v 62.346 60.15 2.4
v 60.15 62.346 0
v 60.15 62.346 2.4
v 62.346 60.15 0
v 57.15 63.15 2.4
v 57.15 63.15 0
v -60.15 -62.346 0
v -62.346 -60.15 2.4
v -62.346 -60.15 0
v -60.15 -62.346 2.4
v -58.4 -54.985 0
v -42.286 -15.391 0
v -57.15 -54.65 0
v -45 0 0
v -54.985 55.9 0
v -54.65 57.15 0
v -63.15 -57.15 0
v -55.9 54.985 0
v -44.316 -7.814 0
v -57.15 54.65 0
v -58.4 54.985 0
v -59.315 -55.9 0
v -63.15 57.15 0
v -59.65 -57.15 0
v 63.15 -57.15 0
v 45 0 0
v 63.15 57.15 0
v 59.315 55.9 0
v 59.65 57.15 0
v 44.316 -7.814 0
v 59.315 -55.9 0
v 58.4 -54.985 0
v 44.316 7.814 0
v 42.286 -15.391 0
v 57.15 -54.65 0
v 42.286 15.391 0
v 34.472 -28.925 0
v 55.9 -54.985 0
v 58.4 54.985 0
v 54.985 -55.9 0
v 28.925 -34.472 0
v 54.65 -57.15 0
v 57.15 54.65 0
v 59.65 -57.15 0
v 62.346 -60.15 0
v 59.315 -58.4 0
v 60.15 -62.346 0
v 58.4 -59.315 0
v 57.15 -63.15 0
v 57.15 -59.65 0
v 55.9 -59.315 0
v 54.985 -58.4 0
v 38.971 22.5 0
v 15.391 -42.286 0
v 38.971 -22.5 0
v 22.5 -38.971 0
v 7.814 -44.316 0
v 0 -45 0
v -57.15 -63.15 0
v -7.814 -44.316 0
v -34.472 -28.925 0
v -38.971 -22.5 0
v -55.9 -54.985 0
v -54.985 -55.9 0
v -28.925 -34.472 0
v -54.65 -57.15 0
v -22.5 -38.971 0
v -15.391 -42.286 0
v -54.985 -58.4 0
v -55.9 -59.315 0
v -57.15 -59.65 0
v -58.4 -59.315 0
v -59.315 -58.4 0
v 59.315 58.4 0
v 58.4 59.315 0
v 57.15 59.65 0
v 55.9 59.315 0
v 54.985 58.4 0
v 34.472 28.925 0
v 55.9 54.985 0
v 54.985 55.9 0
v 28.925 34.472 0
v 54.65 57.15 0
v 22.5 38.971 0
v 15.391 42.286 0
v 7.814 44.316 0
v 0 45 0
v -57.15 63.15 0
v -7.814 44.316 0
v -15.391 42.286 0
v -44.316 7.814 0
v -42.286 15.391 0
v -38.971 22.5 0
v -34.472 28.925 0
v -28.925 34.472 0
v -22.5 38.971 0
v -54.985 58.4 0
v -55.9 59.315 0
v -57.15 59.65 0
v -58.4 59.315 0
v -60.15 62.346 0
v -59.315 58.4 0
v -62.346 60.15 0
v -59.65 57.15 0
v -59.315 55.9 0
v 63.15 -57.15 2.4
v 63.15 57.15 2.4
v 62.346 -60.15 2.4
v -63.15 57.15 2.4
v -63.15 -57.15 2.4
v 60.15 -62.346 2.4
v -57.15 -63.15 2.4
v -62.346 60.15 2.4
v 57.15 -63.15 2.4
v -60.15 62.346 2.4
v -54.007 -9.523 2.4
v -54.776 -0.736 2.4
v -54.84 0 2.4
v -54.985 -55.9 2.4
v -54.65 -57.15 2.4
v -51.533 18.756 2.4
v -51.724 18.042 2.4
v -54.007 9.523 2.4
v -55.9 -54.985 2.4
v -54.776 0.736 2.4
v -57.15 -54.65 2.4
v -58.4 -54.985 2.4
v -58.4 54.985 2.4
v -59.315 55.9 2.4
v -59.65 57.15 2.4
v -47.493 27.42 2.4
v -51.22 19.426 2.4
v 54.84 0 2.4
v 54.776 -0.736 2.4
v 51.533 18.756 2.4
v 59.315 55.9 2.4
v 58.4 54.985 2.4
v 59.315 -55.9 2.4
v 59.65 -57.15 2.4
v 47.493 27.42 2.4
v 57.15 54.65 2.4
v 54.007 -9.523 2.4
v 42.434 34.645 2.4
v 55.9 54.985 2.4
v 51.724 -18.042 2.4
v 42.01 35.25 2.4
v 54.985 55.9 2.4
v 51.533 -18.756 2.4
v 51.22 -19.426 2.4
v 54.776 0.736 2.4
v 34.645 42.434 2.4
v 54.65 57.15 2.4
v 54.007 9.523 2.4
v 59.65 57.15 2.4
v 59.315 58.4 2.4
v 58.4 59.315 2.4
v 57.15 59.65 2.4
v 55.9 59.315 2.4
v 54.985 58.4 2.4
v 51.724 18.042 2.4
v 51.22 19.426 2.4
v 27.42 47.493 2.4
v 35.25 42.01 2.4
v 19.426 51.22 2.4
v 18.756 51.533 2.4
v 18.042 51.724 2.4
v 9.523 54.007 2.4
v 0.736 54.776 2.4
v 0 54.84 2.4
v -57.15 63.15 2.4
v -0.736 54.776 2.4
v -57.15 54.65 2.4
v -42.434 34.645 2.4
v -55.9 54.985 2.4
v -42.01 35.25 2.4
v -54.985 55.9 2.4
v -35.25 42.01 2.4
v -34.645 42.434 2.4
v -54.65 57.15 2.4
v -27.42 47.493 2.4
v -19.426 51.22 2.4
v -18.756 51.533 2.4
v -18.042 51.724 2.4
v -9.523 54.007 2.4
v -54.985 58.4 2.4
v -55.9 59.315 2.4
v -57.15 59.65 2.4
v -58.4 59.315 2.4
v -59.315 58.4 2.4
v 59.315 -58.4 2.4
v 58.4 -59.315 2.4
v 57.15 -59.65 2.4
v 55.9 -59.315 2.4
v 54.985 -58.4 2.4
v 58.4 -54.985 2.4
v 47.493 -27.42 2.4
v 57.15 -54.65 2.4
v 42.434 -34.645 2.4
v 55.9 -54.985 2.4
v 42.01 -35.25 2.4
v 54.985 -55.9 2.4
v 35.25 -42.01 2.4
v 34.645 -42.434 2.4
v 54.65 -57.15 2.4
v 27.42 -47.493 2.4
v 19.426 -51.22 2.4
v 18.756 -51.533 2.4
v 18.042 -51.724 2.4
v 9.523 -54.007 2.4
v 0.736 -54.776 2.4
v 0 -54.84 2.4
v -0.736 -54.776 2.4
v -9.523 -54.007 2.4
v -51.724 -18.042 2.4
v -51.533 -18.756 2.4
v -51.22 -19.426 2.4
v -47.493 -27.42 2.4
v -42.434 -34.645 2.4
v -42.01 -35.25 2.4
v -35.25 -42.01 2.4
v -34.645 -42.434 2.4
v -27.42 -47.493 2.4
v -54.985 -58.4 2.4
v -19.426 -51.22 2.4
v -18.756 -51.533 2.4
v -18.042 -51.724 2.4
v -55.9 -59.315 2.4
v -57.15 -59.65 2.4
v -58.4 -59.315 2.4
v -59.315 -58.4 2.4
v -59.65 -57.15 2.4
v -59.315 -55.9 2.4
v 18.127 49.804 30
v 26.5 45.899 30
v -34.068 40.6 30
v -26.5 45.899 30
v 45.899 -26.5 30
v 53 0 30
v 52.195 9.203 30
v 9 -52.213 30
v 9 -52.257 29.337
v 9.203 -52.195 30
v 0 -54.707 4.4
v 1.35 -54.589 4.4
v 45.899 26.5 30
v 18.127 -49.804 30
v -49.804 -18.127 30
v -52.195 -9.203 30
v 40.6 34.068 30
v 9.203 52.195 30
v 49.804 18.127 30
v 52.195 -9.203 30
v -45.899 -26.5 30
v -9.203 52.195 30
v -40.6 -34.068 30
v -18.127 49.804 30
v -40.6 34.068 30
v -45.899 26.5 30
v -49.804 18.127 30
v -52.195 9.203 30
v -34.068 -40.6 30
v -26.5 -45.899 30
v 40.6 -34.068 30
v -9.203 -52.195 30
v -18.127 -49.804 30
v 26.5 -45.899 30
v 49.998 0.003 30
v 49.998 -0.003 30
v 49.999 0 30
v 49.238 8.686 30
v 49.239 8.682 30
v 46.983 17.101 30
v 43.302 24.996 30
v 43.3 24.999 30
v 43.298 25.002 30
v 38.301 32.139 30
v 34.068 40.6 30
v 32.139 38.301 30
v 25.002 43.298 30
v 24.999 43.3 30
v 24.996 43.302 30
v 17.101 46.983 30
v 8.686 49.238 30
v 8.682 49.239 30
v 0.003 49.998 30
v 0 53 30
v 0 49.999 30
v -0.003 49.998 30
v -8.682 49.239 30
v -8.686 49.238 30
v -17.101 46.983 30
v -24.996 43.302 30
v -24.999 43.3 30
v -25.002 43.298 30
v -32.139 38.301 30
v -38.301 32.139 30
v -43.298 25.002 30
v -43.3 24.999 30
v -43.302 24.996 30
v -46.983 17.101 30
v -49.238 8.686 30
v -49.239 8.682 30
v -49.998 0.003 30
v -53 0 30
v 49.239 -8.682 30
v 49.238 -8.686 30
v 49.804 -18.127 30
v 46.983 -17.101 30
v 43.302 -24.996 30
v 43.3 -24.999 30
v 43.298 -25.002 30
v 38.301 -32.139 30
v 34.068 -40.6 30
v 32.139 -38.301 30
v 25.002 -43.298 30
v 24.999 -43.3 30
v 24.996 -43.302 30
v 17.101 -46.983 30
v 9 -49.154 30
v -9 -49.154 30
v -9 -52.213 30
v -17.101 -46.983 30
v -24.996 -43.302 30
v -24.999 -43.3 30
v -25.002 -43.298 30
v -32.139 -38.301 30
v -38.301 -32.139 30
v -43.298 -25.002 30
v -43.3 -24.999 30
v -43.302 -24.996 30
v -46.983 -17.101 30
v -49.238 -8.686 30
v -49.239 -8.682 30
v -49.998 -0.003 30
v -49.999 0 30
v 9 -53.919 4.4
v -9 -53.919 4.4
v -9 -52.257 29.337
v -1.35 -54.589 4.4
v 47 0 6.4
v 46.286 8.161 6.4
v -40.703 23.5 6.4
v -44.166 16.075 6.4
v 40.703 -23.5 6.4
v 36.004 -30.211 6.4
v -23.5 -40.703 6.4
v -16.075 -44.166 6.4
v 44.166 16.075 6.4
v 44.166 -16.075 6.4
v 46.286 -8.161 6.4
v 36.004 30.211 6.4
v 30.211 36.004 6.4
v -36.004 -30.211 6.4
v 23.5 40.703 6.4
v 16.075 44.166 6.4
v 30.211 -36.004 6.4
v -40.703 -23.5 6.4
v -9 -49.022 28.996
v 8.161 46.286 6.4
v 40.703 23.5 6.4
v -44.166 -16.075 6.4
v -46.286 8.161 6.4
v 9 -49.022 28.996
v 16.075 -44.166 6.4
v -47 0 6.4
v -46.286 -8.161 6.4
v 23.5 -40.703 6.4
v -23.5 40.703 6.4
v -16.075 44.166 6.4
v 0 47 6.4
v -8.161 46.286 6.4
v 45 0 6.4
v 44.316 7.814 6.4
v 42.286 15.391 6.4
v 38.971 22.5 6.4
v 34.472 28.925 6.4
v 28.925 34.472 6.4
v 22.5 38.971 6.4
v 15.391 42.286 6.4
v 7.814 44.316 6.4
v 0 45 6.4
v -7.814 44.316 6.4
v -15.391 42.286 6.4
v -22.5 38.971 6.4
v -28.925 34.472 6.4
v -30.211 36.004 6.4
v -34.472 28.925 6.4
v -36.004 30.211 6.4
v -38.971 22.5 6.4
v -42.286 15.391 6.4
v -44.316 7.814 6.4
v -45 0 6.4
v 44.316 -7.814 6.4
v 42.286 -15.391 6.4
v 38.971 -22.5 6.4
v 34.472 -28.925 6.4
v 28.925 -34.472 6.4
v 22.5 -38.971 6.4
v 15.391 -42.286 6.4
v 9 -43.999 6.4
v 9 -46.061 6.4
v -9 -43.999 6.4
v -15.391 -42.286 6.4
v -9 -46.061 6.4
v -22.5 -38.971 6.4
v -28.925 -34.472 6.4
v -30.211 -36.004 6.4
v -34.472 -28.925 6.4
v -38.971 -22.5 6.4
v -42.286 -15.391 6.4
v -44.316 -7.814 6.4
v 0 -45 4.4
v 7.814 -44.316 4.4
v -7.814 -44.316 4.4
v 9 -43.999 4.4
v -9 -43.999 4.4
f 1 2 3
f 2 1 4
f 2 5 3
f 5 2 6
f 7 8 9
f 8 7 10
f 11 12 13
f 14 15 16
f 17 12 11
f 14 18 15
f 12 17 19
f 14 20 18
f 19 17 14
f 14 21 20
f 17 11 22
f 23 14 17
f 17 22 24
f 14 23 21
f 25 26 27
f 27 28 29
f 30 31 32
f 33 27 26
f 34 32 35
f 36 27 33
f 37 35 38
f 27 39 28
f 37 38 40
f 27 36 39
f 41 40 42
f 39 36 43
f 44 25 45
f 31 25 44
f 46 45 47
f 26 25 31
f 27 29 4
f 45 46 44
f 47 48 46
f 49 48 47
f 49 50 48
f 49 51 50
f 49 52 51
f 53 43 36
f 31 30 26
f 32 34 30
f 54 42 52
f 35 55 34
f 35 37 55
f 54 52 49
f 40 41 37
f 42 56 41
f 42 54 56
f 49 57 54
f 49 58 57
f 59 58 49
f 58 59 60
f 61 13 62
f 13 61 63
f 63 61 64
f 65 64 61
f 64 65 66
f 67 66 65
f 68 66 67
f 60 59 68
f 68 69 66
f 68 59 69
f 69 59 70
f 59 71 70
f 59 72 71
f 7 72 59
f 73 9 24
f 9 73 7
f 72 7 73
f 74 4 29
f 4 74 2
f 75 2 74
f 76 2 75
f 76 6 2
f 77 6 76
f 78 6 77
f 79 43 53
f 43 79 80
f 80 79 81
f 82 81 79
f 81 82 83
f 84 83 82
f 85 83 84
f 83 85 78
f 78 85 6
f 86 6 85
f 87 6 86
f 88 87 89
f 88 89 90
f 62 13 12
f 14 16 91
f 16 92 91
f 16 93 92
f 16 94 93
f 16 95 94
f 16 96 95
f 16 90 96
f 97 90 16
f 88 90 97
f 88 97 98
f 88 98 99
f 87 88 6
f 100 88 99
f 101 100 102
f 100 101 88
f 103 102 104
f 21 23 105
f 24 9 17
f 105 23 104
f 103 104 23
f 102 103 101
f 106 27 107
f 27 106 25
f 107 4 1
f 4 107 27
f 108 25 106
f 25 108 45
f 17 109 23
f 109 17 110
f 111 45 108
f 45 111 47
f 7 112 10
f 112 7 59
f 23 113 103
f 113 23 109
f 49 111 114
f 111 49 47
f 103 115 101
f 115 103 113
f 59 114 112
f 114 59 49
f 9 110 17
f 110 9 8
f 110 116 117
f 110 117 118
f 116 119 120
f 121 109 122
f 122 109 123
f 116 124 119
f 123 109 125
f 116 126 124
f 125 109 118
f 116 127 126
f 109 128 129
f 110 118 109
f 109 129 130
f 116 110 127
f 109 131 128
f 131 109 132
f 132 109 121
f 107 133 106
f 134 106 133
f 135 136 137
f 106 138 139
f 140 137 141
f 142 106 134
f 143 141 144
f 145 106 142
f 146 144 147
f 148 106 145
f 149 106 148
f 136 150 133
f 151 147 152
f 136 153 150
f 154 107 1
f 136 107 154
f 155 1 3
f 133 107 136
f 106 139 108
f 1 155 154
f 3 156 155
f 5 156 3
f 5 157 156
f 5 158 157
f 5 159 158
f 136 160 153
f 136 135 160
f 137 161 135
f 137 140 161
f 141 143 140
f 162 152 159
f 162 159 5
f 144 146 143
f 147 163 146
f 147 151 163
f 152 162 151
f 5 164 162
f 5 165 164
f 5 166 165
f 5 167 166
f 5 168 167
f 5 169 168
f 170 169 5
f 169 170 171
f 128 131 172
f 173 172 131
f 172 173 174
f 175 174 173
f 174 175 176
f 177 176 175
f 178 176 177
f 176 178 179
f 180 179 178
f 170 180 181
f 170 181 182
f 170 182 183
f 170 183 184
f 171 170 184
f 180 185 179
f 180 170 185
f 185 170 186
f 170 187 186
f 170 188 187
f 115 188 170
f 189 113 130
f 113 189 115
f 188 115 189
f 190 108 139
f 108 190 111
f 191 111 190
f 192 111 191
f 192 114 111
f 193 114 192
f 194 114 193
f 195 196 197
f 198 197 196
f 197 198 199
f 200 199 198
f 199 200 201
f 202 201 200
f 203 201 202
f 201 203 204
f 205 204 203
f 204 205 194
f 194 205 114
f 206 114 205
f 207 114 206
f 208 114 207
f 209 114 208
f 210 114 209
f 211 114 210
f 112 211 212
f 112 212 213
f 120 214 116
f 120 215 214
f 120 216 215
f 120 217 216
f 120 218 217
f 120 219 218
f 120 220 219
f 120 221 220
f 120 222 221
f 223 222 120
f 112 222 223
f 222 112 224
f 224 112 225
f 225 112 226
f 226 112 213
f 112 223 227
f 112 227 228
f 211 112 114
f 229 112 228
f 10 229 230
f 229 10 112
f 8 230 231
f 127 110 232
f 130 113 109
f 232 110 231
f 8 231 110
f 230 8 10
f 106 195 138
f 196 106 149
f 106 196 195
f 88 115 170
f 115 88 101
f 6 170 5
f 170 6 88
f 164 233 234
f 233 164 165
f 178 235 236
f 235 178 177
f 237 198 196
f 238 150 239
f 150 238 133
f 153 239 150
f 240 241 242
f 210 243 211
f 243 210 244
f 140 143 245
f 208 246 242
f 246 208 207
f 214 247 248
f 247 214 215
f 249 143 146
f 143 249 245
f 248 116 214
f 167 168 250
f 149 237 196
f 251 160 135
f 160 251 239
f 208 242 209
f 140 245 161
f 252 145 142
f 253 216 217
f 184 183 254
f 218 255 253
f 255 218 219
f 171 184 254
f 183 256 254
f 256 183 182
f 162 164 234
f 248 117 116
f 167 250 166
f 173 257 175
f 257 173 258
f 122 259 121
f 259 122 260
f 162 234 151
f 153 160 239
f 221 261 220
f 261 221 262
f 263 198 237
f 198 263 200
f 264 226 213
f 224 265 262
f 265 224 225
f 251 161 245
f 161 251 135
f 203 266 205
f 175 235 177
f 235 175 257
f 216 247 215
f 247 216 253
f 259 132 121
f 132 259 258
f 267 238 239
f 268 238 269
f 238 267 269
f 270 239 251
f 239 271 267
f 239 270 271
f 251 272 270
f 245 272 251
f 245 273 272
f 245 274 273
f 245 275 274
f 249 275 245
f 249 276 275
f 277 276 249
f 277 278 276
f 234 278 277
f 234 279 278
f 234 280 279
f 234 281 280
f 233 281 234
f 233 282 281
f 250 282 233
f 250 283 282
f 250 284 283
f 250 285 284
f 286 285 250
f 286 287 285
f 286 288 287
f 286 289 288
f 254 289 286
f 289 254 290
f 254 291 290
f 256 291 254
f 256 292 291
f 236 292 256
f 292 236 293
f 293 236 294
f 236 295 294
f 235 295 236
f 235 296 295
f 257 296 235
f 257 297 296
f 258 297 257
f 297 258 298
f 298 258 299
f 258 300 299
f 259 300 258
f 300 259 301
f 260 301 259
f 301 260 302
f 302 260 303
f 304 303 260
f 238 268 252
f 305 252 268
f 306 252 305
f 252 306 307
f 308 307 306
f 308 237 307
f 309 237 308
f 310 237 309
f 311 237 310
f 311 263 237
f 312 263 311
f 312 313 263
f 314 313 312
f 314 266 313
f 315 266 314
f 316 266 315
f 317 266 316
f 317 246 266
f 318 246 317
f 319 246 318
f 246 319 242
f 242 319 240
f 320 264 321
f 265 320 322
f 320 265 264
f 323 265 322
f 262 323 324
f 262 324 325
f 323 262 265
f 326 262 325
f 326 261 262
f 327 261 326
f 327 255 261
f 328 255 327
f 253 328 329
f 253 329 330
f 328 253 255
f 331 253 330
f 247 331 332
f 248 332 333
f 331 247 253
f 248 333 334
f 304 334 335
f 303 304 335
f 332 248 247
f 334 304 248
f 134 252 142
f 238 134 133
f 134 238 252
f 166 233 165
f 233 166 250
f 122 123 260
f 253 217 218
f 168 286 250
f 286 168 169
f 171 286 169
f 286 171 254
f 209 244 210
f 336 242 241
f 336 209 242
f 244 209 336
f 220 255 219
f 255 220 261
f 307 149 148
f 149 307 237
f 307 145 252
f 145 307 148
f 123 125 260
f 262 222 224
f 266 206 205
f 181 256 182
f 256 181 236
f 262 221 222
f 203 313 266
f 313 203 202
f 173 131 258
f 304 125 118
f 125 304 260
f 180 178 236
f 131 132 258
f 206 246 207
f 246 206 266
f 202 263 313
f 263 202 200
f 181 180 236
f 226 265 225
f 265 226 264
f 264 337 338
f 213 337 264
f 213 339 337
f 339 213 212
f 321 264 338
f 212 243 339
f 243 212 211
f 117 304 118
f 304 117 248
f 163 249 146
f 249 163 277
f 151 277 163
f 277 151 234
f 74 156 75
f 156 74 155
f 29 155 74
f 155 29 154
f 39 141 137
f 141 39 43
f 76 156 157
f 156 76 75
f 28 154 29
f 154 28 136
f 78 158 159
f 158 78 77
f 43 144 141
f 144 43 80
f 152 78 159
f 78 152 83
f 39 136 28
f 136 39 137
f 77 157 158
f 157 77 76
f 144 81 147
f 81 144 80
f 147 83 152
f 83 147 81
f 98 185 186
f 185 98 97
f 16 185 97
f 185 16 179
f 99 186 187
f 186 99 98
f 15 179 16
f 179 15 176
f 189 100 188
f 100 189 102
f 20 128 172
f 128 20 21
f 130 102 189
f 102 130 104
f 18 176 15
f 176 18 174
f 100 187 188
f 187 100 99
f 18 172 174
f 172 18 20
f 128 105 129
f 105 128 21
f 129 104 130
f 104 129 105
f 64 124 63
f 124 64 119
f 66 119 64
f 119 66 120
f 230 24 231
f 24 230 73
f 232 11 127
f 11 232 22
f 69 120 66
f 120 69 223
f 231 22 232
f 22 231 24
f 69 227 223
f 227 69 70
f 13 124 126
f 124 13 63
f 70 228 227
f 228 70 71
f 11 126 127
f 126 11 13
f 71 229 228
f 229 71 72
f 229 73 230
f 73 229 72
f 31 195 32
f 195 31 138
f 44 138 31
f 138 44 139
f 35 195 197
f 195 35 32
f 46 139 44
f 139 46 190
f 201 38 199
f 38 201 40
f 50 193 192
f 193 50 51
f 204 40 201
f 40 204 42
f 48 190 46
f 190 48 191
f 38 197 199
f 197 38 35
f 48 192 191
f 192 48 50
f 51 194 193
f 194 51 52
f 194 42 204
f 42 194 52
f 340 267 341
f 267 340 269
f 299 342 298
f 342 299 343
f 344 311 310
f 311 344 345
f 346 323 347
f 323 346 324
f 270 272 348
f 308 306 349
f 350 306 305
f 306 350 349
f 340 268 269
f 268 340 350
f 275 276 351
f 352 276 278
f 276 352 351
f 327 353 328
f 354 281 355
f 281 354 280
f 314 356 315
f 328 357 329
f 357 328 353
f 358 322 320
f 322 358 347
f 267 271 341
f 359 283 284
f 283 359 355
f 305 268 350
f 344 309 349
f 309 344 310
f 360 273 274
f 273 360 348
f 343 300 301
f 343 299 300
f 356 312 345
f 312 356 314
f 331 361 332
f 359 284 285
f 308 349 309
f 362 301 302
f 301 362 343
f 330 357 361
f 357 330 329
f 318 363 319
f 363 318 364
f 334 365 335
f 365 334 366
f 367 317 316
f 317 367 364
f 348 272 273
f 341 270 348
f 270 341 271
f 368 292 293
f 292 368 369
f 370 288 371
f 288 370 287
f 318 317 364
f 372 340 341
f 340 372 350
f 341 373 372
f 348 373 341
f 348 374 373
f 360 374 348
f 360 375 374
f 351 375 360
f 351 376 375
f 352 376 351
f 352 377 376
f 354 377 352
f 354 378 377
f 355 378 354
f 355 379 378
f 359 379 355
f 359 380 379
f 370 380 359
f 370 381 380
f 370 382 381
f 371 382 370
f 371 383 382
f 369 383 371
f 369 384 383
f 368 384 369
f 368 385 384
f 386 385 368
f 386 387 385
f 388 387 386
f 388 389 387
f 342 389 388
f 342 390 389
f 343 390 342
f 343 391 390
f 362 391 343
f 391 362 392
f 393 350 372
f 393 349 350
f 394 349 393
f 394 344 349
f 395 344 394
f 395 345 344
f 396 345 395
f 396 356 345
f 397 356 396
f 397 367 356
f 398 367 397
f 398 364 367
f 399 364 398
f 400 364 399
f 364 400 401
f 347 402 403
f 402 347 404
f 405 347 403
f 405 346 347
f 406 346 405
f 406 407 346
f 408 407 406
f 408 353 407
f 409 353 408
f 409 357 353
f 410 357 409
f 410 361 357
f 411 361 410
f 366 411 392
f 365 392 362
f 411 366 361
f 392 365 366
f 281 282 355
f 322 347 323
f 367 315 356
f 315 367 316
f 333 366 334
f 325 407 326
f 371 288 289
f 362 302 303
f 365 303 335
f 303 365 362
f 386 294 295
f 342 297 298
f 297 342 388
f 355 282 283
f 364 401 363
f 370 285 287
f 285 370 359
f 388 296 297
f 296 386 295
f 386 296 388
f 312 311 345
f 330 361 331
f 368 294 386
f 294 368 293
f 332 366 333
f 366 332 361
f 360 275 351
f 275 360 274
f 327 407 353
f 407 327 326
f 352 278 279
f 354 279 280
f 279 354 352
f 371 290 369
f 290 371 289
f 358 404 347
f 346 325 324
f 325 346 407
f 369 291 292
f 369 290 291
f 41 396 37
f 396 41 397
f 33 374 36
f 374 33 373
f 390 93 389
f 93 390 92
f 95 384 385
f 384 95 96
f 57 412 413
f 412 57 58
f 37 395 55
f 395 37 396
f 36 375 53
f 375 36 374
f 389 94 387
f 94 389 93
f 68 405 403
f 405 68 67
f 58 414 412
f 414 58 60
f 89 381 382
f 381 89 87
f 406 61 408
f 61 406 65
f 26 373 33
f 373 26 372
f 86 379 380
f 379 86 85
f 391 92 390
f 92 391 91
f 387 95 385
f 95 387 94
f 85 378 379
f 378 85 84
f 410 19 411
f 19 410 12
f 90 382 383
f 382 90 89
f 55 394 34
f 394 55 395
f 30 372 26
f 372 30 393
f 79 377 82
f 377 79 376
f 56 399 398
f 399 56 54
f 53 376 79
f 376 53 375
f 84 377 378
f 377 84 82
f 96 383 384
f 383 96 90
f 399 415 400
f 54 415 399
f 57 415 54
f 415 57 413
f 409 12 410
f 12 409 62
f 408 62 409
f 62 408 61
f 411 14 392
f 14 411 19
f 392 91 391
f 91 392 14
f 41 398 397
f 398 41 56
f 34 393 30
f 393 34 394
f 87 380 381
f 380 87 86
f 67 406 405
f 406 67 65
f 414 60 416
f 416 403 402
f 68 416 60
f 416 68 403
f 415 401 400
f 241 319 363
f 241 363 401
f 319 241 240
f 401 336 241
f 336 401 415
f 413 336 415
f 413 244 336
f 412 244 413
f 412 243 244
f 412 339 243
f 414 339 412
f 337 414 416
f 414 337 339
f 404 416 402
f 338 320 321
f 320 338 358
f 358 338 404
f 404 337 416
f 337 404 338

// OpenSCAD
//
// A collector replacement for a rain barrel, body
//
// This unit replaces the grate on top of the barrel.
// The intent is to allow a removal of the grate without tools.
//

base_pitch = 114.3;
base_th = 2.4;

barrel_h = 30.0;
step_h = base_th + 4.0;

hole_d = 5.0;
corner_r = 6.0;

module mould () {

    // The flat base
    hull () {
        translate([base_pitch/2, base_pitch/2, 0])
            cylinder(base_th, r=corner_r, $fn=12);
        translate([(base_pitch/2)*-1, base_pitch/2, 0])
            cylinder(base_th, r=corner_r, $fn=12);
        translate([(base_pitch/2)*-1, (base_pitch/2)*-1, 0])
            cylinder(base_th, r=corner_r, $fn=12);
        translate([base_pitch/2, (base_pitch/2)*-1, 0])
            cylinder(base_th, r=corner_r, $fn=12);
    }

    // The barrel
    cylinder(barrel_h, 55.0, 53.0, $fn=36);
}

// // Design Only
// use <rain_coll_grate.scad>;

module main () {

    difference () {
        mould();

        // Corner holes
        translate([base_pitch/2, base_pitch/2, -0.01])
            cylinder(base_th + 0.02, r=hole_d/2, $fn=12);
        translate([(base_pitch/2)*-1, base_pitch/2, -0.01])
            cylinder(base_th + 0.02, r=hole_d/2, $fn=12);
        translate([(base_pitch/2)*-1, (base_pitch/2)*-1, -0.01])
            cylinder(base_th + 0.02, r=hole_d/2, $fn=12);
        translate([base_pitch/2, (base_pitch/2)*-1, -0.01])
            cylinder(base_th + 0.02, r=hole_d/2, $fn=12);

         // Large center hole with a step
        translate([0, 0, step_h])
            cylinder(barrel_h + 0.01 - step_h, 47.0, 50.0, $fn=36);
        translate([0, 0, -0.01])
            cylinder(step_h + 0.02, 45.0, 45.0, $fn=36);

        // Removal cut-out
        translate([(18.0/2)*-1, -60.0, step_h - 2.0])
            cube([18.0, 60.0, barrel_h + 0.01 - (step_h - 2.0)]);
    }

    // // Design Only
    // translate([0, 0, 12.0])
    //     color("pink")
    //         grate();
}

main();
